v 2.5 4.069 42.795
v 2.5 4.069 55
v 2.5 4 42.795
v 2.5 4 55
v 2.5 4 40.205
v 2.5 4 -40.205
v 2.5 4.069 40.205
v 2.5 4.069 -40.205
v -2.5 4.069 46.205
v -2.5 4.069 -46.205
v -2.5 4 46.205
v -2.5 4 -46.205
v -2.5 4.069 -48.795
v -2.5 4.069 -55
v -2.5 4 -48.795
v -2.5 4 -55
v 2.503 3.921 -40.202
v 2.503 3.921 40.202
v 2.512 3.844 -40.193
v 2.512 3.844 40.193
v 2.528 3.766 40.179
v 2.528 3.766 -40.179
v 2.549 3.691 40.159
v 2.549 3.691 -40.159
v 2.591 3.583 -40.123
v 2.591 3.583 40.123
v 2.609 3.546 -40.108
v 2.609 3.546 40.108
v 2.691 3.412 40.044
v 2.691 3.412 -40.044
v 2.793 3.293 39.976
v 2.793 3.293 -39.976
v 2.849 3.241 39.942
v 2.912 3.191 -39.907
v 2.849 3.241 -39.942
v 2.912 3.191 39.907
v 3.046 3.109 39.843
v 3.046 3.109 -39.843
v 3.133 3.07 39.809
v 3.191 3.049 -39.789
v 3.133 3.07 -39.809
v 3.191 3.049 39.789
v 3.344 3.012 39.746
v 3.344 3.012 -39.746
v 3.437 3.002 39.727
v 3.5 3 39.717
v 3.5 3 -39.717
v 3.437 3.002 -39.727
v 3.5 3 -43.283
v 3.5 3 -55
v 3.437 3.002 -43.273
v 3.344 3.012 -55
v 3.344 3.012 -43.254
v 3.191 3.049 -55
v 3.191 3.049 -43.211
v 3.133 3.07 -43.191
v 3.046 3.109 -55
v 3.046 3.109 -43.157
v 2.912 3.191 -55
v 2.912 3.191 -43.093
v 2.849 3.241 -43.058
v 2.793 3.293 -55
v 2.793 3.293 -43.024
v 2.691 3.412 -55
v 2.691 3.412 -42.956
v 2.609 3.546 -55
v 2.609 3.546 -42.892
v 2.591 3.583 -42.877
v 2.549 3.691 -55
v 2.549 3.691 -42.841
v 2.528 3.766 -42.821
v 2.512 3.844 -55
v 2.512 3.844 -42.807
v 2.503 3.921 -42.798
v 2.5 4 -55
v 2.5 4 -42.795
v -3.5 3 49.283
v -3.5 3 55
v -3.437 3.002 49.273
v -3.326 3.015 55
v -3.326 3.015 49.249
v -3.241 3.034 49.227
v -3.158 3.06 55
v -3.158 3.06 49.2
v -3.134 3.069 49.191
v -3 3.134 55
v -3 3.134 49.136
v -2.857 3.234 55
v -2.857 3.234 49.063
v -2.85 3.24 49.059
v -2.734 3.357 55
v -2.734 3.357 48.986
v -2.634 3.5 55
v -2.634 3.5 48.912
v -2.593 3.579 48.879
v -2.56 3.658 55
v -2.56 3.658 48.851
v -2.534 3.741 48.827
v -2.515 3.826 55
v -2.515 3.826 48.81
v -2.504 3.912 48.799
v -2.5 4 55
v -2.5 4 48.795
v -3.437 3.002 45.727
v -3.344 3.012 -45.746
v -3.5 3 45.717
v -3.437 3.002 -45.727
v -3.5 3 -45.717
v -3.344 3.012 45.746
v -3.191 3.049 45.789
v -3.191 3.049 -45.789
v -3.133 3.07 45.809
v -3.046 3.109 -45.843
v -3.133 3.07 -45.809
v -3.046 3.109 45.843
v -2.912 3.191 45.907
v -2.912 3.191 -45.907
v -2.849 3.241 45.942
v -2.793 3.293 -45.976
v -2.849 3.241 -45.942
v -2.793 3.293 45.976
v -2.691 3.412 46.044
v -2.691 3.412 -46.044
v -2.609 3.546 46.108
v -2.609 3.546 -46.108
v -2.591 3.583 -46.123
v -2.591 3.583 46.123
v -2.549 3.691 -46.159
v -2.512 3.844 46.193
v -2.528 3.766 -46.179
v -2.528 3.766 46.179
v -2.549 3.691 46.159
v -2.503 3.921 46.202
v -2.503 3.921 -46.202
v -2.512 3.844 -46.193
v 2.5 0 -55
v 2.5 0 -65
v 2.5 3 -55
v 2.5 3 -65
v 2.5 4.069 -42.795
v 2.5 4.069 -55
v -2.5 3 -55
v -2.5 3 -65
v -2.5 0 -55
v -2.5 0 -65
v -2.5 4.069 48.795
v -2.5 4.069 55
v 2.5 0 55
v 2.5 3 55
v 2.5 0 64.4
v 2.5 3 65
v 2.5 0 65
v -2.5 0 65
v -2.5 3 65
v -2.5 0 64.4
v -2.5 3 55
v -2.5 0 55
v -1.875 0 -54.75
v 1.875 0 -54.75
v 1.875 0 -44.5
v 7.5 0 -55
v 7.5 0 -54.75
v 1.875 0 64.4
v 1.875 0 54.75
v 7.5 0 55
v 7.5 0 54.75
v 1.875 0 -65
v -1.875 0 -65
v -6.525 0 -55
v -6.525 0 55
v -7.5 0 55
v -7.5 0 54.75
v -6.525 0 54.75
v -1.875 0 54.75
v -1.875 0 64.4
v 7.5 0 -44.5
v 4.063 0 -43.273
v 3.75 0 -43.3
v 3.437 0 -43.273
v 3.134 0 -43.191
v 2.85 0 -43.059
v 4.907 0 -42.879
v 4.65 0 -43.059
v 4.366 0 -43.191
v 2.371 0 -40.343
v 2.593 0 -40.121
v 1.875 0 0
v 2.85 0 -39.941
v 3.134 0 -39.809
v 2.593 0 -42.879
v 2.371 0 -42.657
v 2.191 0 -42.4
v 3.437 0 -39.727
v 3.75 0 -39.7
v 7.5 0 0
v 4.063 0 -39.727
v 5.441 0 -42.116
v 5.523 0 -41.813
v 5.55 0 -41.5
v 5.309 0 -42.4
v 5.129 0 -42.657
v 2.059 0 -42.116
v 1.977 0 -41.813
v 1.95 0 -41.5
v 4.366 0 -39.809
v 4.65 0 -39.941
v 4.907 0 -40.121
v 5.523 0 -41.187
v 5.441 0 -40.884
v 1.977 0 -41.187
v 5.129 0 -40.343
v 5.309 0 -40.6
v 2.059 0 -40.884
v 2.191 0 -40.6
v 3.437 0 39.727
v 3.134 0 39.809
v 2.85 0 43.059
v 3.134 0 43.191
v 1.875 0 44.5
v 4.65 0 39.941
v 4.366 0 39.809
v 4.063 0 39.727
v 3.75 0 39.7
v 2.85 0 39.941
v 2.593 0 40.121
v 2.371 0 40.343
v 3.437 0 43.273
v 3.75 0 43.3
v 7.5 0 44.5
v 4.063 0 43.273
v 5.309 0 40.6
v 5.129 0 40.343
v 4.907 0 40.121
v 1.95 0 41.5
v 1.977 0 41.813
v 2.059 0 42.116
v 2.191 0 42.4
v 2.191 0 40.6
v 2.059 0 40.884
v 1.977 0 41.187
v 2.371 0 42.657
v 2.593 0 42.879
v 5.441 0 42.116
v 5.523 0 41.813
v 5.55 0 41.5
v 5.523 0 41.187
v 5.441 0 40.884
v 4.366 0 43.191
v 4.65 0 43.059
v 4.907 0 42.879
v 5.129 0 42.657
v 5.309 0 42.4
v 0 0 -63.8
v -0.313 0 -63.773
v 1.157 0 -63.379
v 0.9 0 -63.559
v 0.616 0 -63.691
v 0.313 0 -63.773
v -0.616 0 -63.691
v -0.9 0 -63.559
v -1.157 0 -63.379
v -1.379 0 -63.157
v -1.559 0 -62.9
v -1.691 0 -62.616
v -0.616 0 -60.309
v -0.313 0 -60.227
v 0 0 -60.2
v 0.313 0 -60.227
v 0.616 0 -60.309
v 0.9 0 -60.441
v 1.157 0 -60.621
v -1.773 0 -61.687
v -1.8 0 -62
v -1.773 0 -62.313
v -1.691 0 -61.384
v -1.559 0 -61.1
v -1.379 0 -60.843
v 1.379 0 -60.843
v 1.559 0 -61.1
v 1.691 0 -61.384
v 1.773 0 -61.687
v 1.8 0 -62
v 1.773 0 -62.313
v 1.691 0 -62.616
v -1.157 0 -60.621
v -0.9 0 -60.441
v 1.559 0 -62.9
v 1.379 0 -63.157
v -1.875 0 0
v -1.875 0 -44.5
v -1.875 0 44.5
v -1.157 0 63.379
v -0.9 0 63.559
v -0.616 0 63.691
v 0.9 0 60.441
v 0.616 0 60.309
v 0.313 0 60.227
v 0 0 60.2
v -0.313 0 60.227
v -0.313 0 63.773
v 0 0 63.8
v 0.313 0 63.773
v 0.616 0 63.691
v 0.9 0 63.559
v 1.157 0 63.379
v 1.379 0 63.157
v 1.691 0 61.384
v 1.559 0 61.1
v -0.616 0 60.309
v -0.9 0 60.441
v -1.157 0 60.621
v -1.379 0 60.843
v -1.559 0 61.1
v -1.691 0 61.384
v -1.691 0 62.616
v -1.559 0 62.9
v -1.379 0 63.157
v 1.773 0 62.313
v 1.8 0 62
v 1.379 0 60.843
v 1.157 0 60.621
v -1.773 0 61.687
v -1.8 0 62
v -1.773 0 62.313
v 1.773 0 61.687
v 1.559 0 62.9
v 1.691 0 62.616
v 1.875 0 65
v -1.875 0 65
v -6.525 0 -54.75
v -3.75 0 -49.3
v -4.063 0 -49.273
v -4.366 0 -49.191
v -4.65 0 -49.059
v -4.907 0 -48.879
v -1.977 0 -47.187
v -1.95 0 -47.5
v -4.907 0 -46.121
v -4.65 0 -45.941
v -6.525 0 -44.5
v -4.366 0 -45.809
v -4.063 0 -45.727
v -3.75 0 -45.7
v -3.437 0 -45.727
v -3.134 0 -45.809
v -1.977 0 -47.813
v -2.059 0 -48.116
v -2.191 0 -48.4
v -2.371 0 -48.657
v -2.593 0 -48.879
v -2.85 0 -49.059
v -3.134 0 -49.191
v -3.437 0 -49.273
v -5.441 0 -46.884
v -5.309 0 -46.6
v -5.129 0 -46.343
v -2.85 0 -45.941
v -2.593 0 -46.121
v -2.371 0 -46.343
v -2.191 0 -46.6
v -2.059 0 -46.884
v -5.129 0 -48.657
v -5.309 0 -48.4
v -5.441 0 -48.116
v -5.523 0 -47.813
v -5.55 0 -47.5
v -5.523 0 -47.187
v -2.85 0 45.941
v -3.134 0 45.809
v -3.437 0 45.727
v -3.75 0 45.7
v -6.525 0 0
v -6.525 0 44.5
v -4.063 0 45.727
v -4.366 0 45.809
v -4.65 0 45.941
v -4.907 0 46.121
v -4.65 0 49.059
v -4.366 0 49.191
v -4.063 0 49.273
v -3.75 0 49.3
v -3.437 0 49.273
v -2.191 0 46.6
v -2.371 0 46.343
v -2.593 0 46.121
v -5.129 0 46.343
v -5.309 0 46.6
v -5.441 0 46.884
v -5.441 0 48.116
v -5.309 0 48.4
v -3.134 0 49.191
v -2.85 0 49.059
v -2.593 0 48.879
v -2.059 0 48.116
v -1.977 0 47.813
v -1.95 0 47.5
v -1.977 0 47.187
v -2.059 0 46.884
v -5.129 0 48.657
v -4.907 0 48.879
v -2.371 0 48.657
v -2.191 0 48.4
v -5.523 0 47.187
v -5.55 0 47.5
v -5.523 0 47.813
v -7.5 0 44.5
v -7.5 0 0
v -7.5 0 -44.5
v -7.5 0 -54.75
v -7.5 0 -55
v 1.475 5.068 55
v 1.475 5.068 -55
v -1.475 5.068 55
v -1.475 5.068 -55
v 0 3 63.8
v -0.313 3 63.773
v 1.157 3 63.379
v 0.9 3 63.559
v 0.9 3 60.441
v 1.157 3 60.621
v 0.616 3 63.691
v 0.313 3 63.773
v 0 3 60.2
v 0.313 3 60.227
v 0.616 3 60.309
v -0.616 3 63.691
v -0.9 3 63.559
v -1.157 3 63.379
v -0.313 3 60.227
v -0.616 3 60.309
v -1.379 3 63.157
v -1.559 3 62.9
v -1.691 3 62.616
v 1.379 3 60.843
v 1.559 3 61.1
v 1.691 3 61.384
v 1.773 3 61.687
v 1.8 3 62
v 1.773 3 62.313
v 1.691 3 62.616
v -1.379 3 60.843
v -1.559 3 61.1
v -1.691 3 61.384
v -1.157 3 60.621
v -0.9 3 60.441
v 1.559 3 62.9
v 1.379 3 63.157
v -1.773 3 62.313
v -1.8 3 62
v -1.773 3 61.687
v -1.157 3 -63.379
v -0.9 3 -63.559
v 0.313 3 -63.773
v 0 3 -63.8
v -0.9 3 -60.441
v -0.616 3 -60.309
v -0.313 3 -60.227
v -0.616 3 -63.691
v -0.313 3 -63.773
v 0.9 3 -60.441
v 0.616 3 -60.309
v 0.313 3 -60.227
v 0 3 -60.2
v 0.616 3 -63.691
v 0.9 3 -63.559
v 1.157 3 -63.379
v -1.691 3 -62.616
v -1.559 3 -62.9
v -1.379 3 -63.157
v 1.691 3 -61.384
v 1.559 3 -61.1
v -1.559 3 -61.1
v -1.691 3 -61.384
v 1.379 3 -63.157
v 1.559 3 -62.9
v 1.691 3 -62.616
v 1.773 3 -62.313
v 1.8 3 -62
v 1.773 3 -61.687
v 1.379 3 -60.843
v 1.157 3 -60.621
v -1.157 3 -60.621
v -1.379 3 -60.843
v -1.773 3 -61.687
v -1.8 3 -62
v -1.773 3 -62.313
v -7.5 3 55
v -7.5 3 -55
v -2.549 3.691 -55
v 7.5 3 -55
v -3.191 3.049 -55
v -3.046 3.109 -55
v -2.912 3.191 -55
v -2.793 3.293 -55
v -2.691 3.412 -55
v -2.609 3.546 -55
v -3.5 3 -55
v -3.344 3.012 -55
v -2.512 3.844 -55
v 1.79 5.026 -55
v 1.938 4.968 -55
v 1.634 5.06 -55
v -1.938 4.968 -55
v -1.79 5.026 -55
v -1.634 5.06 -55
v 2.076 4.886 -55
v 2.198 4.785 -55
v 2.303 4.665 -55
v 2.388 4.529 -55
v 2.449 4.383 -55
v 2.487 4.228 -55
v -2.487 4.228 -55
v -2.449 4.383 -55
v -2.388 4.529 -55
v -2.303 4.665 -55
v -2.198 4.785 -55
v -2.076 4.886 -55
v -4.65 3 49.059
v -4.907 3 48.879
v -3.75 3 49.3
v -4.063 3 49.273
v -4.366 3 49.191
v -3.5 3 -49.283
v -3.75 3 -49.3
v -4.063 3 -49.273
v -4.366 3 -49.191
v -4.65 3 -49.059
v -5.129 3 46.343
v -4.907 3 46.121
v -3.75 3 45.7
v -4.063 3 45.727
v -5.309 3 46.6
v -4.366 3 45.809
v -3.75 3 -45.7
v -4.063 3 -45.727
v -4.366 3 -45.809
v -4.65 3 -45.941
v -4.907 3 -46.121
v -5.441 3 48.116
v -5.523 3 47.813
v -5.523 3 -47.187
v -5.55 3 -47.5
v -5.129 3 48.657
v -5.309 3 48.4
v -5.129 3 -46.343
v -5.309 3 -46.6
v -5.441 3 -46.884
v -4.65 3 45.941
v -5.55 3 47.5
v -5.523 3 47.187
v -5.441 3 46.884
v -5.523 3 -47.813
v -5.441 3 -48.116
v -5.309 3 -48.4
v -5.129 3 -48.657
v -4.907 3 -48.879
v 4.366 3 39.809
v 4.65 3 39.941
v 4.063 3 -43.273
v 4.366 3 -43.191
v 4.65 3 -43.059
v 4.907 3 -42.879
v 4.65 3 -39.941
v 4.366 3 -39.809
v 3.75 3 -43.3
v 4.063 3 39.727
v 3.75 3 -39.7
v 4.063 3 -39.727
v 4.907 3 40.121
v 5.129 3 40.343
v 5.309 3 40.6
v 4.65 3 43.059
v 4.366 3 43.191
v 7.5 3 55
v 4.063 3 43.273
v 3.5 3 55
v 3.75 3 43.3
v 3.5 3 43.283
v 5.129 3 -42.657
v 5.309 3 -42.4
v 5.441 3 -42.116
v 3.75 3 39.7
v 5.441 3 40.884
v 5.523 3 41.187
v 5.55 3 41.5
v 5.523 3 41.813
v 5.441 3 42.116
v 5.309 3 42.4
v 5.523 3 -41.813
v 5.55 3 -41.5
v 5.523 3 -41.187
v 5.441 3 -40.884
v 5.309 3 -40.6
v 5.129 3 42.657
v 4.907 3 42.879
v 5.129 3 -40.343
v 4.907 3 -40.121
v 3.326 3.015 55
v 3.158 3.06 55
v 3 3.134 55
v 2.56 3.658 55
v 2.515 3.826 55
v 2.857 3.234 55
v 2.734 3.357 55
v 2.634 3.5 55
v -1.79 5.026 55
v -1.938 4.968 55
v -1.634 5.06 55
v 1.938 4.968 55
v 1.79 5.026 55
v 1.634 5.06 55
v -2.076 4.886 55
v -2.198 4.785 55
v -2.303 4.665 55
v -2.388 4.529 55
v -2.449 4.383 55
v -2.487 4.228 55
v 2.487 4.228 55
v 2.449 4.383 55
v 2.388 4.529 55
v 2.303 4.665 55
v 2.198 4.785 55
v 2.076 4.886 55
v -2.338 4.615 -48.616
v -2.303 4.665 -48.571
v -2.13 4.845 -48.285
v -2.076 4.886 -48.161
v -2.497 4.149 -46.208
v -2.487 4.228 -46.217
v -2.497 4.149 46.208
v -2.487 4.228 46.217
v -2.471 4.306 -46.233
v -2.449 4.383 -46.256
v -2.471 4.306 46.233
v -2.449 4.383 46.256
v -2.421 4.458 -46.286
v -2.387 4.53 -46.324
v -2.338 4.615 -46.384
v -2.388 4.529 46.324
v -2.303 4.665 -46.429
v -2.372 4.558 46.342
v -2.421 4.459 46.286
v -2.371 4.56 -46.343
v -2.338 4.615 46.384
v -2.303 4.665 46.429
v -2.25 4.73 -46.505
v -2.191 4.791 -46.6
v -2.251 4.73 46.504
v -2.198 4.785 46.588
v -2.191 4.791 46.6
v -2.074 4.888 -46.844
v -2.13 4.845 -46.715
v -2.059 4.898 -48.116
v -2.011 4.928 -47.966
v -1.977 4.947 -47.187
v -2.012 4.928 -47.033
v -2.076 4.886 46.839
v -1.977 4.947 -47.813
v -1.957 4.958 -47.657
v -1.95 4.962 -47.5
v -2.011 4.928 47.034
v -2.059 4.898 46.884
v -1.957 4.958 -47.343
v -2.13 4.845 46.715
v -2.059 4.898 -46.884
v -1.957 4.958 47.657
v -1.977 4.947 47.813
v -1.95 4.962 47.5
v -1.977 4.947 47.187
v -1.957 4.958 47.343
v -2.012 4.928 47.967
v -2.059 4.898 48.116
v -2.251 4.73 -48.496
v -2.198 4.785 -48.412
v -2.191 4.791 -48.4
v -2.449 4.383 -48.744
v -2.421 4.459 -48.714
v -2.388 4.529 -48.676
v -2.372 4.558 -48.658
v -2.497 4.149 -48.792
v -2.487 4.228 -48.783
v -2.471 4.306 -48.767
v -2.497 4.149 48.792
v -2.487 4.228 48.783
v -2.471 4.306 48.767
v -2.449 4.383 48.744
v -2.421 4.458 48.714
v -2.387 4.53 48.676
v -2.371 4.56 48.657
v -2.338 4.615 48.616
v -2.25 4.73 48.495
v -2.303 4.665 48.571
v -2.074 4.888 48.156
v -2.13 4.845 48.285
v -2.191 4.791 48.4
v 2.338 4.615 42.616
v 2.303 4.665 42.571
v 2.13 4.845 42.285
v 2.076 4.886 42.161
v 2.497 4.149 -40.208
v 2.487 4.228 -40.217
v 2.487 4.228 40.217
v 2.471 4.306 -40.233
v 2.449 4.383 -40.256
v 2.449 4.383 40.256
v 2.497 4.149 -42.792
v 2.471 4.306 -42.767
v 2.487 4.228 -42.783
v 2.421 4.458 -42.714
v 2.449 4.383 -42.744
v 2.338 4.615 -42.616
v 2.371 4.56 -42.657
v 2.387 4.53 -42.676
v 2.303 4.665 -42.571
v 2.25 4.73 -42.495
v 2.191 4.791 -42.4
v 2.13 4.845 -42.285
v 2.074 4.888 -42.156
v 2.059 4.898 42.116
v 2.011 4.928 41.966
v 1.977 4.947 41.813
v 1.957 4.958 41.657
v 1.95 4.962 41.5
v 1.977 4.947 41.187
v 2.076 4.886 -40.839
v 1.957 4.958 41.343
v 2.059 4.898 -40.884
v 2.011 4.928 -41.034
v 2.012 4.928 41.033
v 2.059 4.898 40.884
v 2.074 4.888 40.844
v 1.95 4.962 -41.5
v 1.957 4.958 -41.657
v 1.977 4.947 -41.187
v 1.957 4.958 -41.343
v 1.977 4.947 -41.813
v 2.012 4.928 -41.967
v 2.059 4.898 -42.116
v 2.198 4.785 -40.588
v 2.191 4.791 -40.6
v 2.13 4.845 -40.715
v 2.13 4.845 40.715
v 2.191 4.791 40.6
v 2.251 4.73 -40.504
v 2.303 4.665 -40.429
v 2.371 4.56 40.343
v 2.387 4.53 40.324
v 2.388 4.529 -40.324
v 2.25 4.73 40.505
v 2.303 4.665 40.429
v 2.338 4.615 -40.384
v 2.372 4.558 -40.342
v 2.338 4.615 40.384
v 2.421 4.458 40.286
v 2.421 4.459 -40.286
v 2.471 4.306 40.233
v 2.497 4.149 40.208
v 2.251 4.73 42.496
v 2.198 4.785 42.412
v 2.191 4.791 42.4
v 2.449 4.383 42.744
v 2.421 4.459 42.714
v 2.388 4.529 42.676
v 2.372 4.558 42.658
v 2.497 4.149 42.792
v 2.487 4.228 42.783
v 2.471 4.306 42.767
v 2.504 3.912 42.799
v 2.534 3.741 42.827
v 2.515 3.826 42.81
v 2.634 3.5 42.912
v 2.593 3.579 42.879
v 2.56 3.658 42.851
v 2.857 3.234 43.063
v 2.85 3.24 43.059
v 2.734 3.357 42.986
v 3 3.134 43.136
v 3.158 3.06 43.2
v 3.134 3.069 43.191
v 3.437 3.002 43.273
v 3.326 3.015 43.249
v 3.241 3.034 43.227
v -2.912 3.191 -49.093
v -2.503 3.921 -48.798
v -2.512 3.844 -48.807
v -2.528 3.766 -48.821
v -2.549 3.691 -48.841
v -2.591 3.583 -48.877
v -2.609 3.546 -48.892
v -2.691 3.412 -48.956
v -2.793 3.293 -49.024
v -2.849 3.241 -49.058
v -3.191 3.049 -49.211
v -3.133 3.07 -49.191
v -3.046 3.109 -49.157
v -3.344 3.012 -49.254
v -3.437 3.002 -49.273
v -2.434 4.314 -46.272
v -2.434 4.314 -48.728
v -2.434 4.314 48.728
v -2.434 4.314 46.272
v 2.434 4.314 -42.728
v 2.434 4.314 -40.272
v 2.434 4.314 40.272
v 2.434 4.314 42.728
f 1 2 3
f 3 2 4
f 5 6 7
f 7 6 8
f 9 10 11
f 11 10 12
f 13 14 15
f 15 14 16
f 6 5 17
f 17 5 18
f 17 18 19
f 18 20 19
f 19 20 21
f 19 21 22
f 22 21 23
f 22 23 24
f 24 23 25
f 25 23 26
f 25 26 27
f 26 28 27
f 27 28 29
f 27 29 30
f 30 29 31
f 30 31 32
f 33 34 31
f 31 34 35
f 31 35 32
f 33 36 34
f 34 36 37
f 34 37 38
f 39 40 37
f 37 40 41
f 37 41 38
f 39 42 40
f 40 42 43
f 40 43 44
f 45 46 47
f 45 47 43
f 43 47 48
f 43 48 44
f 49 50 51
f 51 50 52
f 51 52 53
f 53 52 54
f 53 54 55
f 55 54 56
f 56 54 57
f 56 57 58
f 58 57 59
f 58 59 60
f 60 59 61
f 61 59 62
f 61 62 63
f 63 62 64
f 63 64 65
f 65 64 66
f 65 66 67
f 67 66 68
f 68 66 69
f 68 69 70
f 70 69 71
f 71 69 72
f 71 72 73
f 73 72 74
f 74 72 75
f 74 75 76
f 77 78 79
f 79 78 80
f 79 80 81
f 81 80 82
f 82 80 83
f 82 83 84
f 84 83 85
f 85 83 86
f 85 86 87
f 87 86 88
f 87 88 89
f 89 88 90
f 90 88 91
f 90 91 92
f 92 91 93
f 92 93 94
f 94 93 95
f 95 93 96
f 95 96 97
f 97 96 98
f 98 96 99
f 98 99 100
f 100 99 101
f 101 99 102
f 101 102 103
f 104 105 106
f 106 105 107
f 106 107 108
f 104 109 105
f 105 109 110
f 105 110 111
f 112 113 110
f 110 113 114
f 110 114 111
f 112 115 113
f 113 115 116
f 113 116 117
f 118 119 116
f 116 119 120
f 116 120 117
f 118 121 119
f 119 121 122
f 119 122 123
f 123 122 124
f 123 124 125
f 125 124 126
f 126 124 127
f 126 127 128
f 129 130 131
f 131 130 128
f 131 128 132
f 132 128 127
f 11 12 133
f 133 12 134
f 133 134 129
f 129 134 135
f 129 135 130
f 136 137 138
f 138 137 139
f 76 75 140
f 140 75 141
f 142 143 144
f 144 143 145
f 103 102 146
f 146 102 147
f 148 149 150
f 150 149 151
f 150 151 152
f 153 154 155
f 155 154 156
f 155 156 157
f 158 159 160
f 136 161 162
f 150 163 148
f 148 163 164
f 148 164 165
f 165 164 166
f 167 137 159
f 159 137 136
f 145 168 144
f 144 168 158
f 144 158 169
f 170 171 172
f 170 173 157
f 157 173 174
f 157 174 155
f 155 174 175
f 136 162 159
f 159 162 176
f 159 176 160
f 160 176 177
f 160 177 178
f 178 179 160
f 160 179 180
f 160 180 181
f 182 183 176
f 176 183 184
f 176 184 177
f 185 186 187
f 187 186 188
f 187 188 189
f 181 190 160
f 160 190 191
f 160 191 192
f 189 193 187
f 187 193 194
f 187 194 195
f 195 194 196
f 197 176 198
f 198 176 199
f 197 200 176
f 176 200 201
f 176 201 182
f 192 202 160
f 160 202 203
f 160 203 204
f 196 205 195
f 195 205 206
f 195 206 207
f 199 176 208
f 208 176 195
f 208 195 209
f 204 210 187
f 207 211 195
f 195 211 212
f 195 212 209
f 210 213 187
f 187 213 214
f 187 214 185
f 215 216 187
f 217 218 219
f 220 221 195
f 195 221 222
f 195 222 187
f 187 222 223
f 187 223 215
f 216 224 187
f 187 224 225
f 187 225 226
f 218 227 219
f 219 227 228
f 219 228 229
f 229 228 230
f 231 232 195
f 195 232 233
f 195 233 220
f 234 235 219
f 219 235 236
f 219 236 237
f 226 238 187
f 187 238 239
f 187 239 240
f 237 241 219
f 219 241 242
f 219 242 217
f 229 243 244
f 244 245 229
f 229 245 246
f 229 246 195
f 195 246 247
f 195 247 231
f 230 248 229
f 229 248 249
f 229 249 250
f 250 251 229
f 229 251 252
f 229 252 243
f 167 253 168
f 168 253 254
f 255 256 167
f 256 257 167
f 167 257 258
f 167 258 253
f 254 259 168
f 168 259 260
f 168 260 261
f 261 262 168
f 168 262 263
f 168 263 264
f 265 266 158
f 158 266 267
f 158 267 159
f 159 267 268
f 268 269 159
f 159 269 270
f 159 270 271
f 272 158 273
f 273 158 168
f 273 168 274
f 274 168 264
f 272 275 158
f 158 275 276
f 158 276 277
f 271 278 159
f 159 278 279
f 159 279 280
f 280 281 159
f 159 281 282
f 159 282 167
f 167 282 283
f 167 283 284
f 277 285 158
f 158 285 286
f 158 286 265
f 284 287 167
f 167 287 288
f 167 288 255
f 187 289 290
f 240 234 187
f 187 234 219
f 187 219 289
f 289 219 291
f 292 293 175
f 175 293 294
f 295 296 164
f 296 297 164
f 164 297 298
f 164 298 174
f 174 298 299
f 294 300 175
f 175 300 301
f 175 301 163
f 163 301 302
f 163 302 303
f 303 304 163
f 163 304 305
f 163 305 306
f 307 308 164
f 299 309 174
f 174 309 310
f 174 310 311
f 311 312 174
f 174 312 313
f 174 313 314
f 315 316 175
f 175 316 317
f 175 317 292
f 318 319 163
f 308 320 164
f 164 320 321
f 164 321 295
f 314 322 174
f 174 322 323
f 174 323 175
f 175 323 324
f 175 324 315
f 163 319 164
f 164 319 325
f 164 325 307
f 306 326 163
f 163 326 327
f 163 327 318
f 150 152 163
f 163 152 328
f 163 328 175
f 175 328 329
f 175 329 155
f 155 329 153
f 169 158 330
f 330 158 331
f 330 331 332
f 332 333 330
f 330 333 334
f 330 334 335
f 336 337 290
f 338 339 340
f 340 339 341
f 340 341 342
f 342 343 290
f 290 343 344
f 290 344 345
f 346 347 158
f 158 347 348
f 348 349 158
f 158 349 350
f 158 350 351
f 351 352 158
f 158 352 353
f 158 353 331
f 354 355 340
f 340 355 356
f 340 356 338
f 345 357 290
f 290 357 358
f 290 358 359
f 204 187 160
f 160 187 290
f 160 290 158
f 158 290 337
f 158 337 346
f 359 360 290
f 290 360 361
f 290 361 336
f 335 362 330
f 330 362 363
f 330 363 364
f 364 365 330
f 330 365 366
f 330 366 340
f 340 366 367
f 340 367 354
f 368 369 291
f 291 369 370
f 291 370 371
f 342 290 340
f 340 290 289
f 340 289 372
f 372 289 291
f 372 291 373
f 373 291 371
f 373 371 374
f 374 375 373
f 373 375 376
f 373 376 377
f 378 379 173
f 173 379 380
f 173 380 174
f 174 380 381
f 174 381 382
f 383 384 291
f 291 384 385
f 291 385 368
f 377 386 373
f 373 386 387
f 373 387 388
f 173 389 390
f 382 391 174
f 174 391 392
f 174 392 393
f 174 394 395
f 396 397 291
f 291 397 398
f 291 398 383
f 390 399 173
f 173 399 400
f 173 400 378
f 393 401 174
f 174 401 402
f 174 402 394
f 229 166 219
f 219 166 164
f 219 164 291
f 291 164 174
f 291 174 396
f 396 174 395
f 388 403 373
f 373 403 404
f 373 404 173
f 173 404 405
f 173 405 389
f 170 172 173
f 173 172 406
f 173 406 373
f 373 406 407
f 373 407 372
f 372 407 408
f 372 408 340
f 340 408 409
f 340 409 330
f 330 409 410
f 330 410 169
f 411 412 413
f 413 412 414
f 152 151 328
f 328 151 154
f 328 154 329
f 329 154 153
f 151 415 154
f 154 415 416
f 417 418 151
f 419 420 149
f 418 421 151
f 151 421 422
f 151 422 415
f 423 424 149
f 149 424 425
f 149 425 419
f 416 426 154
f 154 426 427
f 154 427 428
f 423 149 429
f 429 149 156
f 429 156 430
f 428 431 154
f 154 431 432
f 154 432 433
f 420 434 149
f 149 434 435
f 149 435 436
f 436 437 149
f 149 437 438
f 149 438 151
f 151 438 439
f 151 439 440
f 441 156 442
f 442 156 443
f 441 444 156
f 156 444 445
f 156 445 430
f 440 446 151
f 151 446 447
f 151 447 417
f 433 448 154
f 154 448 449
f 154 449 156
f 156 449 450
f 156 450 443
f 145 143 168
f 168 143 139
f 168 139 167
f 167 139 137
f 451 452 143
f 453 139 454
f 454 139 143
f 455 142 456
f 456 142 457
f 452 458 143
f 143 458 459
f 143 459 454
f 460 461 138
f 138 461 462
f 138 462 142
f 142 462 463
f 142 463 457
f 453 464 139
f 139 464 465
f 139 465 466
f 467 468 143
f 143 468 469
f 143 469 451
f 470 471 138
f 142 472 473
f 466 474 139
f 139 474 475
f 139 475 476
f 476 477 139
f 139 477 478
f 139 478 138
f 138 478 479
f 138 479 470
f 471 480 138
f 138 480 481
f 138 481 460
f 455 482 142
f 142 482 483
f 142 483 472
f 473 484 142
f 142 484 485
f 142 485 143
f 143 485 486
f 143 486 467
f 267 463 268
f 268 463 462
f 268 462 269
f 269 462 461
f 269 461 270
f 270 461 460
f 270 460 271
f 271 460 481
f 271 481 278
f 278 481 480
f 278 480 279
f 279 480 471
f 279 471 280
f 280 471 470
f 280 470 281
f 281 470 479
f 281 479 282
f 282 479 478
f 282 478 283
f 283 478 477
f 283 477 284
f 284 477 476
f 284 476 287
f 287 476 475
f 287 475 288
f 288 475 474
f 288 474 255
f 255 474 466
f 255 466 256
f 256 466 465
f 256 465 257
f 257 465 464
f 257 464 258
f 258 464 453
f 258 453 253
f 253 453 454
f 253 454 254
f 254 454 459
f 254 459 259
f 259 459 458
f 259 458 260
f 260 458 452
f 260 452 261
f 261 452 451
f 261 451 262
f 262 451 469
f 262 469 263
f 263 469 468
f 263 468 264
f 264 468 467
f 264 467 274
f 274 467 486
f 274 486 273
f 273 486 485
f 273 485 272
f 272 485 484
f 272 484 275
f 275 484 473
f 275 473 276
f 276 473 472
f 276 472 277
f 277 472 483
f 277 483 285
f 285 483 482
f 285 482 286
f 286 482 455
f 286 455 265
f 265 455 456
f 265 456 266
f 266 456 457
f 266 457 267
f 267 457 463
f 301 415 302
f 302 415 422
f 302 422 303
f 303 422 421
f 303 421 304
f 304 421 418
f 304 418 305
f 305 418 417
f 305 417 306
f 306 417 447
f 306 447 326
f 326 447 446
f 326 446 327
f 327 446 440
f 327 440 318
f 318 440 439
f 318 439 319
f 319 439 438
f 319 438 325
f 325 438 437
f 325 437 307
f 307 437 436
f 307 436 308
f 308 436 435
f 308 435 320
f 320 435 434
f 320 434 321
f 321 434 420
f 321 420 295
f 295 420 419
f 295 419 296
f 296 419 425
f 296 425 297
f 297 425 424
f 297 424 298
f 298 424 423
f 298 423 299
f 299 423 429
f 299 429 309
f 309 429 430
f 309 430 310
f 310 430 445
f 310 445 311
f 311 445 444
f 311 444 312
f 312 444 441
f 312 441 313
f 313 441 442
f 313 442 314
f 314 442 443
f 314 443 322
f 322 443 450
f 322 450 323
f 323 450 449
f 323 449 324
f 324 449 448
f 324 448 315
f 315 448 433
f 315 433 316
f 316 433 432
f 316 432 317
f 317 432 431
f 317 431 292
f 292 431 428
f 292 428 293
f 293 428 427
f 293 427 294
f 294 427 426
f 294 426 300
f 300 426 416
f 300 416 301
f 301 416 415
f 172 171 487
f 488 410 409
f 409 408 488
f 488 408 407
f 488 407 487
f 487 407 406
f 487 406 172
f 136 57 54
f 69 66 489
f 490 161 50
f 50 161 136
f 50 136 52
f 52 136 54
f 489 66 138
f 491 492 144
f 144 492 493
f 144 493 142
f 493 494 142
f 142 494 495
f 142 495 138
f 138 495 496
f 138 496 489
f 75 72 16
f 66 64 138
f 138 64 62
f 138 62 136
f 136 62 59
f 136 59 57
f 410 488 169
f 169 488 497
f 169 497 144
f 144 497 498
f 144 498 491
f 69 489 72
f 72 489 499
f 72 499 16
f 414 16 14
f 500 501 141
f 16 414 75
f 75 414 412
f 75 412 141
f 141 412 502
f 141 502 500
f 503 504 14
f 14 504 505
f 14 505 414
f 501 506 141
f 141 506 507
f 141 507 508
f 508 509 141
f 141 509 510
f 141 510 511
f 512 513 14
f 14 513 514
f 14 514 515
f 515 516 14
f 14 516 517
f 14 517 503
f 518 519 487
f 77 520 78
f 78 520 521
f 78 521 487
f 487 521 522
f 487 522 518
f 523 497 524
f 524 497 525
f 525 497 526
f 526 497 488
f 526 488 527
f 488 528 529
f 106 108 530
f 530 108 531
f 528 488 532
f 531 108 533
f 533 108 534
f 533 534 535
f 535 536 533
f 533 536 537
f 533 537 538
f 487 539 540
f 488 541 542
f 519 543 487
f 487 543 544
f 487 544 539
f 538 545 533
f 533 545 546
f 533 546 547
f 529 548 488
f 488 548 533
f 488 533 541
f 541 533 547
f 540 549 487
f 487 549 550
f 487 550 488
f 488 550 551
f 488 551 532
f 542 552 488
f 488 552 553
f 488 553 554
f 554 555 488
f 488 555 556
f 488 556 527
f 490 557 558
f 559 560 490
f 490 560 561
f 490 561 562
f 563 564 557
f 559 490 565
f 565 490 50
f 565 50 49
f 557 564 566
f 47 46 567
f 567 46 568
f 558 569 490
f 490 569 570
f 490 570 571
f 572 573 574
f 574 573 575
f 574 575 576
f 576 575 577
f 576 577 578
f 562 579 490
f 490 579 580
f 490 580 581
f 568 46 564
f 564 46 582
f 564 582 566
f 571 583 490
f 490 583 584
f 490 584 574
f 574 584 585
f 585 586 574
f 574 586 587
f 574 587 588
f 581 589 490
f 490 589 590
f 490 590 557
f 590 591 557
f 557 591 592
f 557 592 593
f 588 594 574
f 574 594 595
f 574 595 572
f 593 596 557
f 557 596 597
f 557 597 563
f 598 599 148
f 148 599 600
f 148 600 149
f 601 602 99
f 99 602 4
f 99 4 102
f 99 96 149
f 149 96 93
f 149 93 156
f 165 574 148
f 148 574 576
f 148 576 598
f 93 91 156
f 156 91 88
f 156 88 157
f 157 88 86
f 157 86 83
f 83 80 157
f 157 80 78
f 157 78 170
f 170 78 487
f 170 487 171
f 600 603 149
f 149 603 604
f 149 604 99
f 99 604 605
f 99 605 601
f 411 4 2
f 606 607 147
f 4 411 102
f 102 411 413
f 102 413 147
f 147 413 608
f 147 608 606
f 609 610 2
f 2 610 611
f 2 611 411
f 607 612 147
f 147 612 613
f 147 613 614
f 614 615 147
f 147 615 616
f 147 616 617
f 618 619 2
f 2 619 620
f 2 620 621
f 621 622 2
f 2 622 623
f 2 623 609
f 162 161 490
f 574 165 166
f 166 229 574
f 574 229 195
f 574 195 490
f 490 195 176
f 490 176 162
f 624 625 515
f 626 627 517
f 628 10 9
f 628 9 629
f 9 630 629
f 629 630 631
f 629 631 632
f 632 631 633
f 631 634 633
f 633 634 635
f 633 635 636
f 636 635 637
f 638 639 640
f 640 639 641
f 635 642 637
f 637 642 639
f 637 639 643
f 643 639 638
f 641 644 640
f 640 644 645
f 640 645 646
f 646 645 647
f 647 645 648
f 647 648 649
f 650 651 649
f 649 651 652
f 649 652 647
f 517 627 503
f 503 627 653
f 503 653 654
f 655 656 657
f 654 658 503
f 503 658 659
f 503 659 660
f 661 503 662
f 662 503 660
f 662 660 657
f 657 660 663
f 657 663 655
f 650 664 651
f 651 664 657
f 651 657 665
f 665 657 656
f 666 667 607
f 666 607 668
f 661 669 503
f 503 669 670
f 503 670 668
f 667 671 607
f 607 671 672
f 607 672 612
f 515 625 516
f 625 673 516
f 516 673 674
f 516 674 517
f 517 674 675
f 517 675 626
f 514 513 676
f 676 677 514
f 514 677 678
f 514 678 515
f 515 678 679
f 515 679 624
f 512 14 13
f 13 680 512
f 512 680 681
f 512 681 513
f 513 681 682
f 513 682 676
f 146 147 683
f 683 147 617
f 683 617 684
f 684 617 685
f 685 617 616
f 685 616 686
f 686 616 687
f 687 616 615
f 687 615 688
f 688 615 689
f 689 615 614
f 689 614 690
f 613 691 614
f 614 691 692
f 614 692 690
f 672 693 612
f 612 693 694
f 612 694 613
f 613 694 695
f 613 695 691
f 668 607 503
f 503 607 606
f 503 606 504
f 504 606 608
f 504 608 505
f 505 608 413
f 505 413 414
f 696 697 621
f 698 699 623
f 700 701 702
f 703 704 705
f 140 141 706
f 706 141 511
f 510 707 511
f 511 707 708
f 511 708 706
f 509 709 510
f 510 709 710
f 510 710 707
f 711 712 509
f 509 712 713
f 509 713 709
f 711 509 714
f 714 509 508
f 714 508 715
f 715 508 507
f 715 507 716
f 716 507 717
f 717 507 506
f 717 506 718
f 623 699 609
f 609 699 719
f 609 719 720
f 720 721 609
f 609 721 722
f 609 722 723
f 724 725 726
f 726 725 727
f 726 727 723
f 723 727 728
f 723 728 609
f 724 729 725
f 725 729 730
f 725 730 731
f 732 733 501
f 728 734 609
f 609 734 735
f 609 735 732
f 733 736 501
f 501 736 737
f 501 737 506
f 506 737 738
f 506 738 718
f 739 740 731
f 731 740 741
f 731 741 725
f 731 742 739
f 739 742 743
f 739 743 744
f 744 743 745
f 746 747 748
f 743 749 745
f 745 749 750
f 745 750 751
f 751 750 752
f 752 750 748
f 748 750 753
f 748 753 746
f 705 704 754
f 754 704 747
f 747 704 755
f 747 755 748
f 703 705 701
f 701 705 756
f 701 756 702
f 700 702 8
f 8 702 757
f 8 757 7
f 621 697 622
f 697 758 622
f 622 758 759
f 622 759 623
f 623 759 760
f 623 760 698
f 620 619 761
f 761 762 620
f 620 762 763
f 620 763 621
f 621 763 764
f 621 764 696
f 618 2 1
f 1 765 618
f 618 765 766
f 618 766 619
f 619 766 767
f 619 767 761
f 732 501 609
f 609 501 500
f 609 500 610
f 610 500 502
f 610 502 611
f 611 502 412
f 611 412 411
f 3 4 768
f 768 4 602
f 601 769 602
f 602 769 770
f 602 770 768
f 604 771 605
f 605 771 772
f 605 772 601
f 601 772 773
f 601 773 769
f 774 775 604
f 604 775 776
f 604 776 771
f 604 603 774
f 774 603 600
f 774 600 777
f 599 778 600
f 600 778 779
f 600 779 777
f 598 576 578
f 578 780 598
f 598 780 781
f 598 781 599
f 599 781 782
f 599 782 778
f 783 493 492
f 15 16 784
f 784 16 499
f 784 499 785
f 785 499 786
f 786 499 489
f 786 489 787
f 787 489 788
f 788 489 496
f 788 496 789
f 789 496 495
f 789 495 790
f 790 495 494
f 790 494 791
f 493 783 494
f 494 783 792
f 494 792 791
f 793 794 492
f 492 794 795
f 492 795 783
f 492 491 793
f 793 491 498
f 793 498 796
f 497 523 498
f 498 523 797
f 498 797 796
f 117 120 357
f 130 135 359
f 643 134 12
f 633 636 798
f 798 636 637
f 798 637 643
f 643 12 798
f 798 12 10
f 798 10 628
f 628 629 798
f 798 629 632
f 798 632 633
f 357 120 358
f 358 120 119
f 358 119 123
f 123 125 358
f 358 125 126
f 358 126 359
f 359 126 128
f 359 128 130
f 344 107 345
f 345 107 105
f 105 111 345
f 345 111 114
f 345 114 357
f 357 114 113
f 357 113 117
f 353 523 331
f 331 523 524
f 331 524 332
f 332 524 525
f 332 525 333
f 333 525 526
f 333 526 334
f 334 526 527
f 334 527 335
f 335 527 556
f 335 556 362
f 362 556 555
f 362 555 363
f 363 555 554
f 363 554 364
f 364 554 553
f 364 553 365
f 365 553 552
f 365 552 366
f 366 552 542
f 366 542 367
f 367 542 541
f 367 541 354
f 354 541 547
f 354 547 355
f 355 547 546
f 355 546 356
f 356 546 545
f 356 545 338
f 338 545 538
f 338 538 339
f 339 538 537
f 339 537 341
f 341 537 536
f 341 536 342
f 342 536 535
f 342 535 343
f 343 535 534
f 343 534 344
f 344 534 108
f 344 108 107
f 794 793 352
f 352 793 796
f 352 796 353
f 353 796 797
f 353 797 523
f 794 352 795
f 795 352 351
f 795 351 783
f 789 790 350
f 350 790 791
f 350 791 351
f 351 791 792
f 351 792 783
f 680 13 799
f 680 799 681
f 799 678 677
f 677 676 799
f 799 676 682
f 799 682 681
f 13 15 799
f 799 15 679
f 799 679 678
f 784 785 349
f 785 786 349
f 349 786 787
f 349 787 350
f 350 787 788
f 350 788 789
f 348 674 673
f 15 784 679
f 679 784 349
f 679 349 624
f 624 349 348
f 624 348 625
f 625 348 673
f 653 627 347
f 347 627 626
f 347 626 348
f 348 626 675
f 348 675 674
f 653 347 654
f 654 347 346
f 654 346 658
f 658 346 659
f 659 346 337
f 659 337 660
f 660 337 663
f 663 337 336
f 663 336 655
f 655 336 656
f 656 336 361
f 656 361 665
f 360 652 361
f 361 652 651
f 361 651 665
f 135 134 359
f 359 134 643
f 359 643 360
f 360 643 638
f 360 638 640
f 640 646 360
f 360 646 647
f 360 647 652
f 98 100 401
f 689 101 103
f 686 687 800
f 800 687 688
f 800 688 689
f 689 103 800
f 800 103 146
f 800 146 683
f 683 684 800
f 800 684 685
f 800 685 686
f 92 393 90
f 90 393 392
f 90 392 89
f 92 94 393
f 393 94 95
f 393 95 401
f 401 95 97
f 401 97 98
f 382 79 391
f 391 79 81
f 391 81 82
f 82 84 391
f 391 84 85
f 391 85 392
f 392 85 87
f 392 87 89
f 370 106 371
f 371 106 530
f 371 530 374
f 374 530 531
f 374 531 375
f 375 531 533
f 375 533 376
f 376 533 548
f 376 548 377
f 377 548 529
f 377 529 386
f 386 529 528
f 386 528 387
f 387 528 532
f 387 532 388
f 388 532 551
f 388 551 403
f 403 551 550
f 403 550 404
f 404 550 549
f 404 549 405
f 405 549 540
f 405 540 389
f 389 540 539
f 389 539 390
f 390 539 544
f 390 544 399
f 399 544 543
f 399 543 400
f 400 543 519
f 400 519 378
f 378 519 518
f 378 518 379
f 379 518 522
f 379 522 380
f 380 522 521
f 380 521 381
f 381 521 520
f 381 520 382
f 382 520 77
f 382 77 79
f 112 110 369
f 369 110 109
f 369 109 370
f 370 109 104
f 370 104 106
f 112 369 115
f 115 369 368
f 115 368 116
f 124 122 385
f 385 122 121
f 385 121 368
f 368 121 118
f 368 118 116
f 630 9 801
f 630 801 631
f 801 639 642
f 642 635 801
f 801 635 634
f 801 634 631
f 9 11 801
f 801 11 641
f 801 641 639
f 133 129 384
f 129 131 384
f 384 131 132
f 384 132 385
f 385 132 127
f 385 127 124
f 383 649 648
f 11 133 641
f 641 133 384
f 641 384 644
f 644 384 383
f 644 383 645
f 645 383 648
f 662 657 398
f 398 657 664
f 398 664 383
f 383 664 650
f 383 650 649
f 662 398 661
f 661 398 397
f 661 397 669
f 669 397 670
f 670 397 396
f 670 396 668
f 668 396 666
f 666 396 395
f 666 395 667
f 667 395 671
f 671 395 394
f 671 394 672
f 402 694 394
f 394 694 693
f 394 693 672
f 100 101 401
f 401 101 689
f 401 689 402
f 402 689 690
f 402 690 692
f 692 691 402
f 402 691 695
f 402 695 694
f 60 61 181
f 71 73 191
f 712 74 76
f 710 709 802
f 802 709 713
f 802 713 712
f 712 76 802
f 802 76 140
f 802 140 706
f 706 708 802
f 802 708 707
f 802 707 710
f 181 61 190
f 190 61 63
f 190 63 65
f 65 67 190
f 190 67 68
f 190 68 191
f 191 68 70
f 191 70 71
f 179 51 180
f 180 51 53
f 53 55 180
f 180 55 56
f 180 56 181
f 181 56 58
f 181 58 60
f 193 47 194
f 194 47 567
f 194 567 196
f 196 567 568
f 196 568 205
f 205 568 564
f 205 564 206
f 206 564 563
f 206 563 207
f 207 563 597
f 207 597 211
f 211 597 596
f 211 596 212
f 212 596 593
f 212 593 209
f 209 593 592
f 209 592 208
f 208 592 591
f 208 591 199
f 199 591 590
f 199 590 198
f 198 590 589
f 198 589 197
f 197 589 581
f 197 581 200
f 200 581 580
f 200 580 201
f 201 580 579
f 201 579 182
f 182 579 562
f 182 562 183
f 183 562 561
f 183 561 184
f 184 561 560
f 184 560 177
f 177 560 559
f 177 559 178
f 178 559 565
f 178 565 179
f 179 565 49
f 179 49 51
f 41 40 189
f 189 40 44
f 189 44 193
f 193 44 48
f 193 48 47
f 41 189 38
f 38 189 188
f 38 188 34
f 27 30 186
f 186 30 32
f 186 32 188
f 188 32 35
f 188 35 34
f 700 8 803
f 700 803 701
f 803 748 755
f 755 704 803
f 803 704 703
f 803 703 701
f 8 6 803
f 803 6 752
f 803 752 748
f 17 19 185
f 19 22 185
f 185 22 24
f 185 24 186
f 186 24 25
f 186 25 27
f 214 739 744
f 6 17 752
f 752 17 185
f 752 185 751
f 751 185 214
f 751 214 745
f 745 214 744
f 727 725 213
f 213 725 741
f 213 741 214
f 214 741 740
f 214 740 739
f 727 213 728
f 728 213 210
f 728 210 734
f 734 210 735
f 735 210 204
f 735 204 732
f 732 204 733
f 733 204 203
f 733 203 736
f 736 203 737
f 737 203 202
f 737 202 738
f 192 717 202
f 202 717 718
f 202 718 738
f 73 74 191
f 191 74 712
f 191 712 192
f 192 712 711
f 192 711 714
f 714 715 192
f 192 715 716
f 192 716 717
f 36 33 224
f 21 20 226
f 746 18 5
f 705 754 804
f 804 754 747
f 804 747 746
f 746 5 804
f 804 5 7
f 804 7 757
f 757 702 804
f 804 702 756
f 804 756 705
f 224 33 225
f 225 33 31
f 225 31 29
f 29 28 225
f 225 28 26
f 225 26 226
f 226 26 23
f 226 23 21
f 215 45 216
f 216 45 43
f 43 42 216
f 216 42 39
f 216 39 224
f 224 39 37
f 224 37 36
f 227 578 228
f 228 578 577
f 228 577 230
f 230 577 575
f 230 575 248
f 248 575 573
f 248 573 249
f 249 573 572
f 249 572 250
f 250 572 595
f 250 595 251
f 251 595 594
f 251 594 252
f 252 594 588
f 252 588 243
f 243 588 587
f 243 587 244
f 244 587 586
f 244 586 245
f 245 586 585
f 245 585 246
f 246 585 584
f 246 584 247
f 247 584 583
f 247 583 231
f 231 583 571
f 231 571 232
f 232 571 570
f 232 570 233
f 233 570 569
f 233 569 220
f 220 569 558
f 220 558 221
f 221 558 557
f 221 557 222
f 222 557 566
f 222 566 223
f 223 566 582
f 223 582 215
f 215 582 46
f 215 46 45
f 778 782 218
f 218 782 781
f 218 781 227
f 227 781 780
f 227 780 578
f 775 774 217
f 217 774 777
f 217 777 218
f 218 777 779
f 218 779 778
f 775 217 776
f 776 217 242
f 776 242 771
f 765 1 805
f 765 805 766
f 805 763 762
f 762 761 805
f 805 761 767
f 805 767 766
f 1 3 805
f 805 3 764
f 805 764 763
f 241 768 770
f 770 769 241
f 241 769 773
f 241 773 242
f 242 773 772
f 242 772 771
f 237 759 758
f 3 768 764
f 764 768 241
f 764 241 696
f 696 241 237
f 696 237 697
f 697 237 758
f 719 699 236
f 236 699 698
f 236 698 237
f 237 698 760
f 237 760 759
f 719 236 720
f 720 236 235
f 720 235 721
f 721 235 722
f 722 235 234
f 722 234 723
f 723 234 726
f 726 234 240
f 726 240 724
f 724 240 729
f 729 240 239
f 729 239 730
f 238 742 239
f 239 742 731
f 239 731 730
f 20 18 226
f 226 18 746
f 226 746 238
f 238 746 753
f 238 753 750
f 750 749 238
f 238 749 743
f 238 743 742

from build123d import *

# Parameters (mm, degrees)
SKETCH1_W               = 5
SKETCH1_H               = 110
BOSS_EXTRUDE1_DEPTH     = 3
BOSS_EXTRUDE2_DEPTH     = 55
BOSS_EXTRUDE3_START     = 55
BOSS_EXTRUDE3_DEPTH     = 55
SKETCH8_W               = 5
SKETCH8_H               = 10
BOSS_EXTRUDE4_DEPTH     = 3
SKETCH6_R               = 1.8
CUT_EXTRUDE1_DEPTH      = 66.117202028
SKETCH9_W               = 15
SKETCH9_H               = 110
BOSS_EXTRUDE5_DEPTH     = 3
FILLET1_R               = 1
CUT_EXTRUDE2_DEPTH      = 66.5
CUT_EXTRUDE2_DEPTH_BACK = 66.5
SKETCH10_R              = 1.8


with BuildPart() as part:
    # Sketch1 → Boss-Extrude1 (new body)
    with BuildSketch(Plane(origin=(0, 0, 0), x_dir=(1, 0, 0), z_dir=(0, 1, 0))):
        Rectangle(SKETCH1_W, SKETCH1_H)
    extrude(amount=BOSS_EXTRUDE1_DEPTH)

    # Sketch3 → Boss-Extrude2 (add)
    with BuildSketch(Plane.XY):
        with BuildLine():
            Line((-2.5, 3), (-2.5, 5.102989898))
            ThreePointArc((-2.5, 5.102989898), (0, 5.05), (2.5, 5.102989898))
            Line((2.5, 5.102989898), (2.5, 3))
            Line((2.5, 3), (2.5, 0))
            Line((2.5, 0), (-2.5, 0))
            Line((-2.5, 0), (-2.5, 3))
        make_face()
    extrude(amount=BOSS_EXTRUDE2_DEPTH)

    # Sketch7 → Boss-Extrude3 (add)
    with BuildSketch(Plane(origin=(0, 0, 0), x_dir=(-1, 0, 0), z_dir=(0, 0, -1)).offset(BOSS_EXTRUDE3_START)):
        with BuildLine():
            Line((-2.5, 5.102989898), (-2.5, 3))
            Line((-2.5, 3), (2.5, 3))
            Line((2.5, 3), (2.5, 5.102989898))
            ThreePointArc((2.5, 5.102989898), (0, 5.05), (-2.5, 5.102989898))
        make_face()
    extrude(amount=-BOSS_EXTRUDE3_DEPTH)

    # Sketch8 → Boss-Extrude4 (add)
    with BuildSketch(Plane.XZ):
        with Locations((0, 60)):
            Rectangle(SKETCH8_W, SKETCH8_H)
        with Locations((0, -60)):
            Rectangle(SKETCH8_W, SKETCH8_H)
    extrude(amount=-BOSS_EXTRUDE4_DEPTH)

    # Sketch6 → Cut-Extrude1 (cut, through all)
    with BuildSketch(Plane(origin=(0, 3, 0), x_dir=(1, 0, 0), z_dir=(0, 1, 0))):
        with Locations(Location((0, -62, 0), (0, 0, 270))):
            Circle(SKETCH6_R)
        with Locations(Location((0, 62, 0), (0, 0, 90))):
            Circle(SKETCH6_R)
    extrude(amount=-CUT_EXTRUDE1_DEPTH, mode=Mode.SUBTRACT)

    # Sketch9 → Boss-Extrude5 (add)
    with BuildSketch(Plane.XZ):
        Rectangle(SKETCH9_W, SKETCH9_H)
    extrude(amount=-BOSS_EXTRUDE5_DEPTH)

    # Fillet1
    # the kernel refuses this fillet: 1 mm, written as the material it adds along each edge
    with BuildSketch(Plane(origin=(2.5, 3, -55), x_dir=(0, 1, 0), z_dir=(0, 0, 1)), Plane(origin=(-2.5, 3, 55), x_dir=(0, 1, 0), z_dir=(0, 0, -1))) as fillet1_piece_1:
        with BuildLine():
            CenterArc((FILLET1_R, -FILLET1_R), FILLET1_R, 90, 90)
            Line((0, -FILLET1_R), (0, 0))
            Line((0, 0), (FILLET1_R, 0))
        make_face()
    extrude(amount=110)
    # the kernel refuses this fillet: 1 mm, written as the material it takes off along each edge
    with BuildSketch(Plane(origin=(-2.5, 5.102989898, 57.585592418), x_dir=(0, -1, 0), z_dir=(0, 0, -1))) as fillet1_2_piece_1:
        with BuildLine():
            CenterArc((1.034236967, -1), FILLET1_R, 90, 91.432543738)
            ThreePointArc((0.034549516, -1.025), (0.019501965, -0.512424928), (0, 0))
            Line((0, 0), (1.034236967, 0))
        make_face()
    extrude(amount=115.171184836, mode=Mode.SUBTRACT)
    with BuildSketch(Plane(origin=(2.5, 5.102989898, 57.585592418), x_dir=(0, -1, 0), z_dir=(0, 0, -1))) as fillet1_2_piece_2:
        with BuildLine():
            CenterArc((1.034236967, 1), FILLET1_R, 178.567456262, 91.432543738)
            ThreePointArc((0.034549516, 1.025), (0.019501965, 0.512424928), (0, 0))
            Line((0, 0), (1.034236967, 0))
        make_face()
    extrude(amount=115.171184836, mode=Mode.SUBTRACT)

    # Sketch10 → Cut-Extrude2 (cut, two sides: drawn at the far end of the back side and taken through both)
    with BuildSketch(Plane(origin=(0, 3, 0), x_dir=(1, 0, 0), z_dir=(0, 1, 0)).offset(-CUT_EXTRUDE2_DEPTH_BACK)):
        with Locations(Location((-3.75, -47.5, 0), (0, 0, 270))):
            Circle(SKETCH10_R)
        with Locations(Location((3.75, -41.5, 0), (0, 0, 270))):
            Circle(SKETCH10_R)
        with Locations(Location((3.75, 41.5, 0), (0, 0, 262.016443854))):
            Circle(SKETCH10_R)
        with Locations(Location((-3.75, 47.5, 0), (0, 0, 277.983556146))):
            Circle(SKETCH10_R)
    extrude(amount=CUT_EXTRUDE2_DEPTH + CUT_EXTRUDE2_DEPTH_BACK, mode=Mode.SUBTRACT)


solid = part.part
